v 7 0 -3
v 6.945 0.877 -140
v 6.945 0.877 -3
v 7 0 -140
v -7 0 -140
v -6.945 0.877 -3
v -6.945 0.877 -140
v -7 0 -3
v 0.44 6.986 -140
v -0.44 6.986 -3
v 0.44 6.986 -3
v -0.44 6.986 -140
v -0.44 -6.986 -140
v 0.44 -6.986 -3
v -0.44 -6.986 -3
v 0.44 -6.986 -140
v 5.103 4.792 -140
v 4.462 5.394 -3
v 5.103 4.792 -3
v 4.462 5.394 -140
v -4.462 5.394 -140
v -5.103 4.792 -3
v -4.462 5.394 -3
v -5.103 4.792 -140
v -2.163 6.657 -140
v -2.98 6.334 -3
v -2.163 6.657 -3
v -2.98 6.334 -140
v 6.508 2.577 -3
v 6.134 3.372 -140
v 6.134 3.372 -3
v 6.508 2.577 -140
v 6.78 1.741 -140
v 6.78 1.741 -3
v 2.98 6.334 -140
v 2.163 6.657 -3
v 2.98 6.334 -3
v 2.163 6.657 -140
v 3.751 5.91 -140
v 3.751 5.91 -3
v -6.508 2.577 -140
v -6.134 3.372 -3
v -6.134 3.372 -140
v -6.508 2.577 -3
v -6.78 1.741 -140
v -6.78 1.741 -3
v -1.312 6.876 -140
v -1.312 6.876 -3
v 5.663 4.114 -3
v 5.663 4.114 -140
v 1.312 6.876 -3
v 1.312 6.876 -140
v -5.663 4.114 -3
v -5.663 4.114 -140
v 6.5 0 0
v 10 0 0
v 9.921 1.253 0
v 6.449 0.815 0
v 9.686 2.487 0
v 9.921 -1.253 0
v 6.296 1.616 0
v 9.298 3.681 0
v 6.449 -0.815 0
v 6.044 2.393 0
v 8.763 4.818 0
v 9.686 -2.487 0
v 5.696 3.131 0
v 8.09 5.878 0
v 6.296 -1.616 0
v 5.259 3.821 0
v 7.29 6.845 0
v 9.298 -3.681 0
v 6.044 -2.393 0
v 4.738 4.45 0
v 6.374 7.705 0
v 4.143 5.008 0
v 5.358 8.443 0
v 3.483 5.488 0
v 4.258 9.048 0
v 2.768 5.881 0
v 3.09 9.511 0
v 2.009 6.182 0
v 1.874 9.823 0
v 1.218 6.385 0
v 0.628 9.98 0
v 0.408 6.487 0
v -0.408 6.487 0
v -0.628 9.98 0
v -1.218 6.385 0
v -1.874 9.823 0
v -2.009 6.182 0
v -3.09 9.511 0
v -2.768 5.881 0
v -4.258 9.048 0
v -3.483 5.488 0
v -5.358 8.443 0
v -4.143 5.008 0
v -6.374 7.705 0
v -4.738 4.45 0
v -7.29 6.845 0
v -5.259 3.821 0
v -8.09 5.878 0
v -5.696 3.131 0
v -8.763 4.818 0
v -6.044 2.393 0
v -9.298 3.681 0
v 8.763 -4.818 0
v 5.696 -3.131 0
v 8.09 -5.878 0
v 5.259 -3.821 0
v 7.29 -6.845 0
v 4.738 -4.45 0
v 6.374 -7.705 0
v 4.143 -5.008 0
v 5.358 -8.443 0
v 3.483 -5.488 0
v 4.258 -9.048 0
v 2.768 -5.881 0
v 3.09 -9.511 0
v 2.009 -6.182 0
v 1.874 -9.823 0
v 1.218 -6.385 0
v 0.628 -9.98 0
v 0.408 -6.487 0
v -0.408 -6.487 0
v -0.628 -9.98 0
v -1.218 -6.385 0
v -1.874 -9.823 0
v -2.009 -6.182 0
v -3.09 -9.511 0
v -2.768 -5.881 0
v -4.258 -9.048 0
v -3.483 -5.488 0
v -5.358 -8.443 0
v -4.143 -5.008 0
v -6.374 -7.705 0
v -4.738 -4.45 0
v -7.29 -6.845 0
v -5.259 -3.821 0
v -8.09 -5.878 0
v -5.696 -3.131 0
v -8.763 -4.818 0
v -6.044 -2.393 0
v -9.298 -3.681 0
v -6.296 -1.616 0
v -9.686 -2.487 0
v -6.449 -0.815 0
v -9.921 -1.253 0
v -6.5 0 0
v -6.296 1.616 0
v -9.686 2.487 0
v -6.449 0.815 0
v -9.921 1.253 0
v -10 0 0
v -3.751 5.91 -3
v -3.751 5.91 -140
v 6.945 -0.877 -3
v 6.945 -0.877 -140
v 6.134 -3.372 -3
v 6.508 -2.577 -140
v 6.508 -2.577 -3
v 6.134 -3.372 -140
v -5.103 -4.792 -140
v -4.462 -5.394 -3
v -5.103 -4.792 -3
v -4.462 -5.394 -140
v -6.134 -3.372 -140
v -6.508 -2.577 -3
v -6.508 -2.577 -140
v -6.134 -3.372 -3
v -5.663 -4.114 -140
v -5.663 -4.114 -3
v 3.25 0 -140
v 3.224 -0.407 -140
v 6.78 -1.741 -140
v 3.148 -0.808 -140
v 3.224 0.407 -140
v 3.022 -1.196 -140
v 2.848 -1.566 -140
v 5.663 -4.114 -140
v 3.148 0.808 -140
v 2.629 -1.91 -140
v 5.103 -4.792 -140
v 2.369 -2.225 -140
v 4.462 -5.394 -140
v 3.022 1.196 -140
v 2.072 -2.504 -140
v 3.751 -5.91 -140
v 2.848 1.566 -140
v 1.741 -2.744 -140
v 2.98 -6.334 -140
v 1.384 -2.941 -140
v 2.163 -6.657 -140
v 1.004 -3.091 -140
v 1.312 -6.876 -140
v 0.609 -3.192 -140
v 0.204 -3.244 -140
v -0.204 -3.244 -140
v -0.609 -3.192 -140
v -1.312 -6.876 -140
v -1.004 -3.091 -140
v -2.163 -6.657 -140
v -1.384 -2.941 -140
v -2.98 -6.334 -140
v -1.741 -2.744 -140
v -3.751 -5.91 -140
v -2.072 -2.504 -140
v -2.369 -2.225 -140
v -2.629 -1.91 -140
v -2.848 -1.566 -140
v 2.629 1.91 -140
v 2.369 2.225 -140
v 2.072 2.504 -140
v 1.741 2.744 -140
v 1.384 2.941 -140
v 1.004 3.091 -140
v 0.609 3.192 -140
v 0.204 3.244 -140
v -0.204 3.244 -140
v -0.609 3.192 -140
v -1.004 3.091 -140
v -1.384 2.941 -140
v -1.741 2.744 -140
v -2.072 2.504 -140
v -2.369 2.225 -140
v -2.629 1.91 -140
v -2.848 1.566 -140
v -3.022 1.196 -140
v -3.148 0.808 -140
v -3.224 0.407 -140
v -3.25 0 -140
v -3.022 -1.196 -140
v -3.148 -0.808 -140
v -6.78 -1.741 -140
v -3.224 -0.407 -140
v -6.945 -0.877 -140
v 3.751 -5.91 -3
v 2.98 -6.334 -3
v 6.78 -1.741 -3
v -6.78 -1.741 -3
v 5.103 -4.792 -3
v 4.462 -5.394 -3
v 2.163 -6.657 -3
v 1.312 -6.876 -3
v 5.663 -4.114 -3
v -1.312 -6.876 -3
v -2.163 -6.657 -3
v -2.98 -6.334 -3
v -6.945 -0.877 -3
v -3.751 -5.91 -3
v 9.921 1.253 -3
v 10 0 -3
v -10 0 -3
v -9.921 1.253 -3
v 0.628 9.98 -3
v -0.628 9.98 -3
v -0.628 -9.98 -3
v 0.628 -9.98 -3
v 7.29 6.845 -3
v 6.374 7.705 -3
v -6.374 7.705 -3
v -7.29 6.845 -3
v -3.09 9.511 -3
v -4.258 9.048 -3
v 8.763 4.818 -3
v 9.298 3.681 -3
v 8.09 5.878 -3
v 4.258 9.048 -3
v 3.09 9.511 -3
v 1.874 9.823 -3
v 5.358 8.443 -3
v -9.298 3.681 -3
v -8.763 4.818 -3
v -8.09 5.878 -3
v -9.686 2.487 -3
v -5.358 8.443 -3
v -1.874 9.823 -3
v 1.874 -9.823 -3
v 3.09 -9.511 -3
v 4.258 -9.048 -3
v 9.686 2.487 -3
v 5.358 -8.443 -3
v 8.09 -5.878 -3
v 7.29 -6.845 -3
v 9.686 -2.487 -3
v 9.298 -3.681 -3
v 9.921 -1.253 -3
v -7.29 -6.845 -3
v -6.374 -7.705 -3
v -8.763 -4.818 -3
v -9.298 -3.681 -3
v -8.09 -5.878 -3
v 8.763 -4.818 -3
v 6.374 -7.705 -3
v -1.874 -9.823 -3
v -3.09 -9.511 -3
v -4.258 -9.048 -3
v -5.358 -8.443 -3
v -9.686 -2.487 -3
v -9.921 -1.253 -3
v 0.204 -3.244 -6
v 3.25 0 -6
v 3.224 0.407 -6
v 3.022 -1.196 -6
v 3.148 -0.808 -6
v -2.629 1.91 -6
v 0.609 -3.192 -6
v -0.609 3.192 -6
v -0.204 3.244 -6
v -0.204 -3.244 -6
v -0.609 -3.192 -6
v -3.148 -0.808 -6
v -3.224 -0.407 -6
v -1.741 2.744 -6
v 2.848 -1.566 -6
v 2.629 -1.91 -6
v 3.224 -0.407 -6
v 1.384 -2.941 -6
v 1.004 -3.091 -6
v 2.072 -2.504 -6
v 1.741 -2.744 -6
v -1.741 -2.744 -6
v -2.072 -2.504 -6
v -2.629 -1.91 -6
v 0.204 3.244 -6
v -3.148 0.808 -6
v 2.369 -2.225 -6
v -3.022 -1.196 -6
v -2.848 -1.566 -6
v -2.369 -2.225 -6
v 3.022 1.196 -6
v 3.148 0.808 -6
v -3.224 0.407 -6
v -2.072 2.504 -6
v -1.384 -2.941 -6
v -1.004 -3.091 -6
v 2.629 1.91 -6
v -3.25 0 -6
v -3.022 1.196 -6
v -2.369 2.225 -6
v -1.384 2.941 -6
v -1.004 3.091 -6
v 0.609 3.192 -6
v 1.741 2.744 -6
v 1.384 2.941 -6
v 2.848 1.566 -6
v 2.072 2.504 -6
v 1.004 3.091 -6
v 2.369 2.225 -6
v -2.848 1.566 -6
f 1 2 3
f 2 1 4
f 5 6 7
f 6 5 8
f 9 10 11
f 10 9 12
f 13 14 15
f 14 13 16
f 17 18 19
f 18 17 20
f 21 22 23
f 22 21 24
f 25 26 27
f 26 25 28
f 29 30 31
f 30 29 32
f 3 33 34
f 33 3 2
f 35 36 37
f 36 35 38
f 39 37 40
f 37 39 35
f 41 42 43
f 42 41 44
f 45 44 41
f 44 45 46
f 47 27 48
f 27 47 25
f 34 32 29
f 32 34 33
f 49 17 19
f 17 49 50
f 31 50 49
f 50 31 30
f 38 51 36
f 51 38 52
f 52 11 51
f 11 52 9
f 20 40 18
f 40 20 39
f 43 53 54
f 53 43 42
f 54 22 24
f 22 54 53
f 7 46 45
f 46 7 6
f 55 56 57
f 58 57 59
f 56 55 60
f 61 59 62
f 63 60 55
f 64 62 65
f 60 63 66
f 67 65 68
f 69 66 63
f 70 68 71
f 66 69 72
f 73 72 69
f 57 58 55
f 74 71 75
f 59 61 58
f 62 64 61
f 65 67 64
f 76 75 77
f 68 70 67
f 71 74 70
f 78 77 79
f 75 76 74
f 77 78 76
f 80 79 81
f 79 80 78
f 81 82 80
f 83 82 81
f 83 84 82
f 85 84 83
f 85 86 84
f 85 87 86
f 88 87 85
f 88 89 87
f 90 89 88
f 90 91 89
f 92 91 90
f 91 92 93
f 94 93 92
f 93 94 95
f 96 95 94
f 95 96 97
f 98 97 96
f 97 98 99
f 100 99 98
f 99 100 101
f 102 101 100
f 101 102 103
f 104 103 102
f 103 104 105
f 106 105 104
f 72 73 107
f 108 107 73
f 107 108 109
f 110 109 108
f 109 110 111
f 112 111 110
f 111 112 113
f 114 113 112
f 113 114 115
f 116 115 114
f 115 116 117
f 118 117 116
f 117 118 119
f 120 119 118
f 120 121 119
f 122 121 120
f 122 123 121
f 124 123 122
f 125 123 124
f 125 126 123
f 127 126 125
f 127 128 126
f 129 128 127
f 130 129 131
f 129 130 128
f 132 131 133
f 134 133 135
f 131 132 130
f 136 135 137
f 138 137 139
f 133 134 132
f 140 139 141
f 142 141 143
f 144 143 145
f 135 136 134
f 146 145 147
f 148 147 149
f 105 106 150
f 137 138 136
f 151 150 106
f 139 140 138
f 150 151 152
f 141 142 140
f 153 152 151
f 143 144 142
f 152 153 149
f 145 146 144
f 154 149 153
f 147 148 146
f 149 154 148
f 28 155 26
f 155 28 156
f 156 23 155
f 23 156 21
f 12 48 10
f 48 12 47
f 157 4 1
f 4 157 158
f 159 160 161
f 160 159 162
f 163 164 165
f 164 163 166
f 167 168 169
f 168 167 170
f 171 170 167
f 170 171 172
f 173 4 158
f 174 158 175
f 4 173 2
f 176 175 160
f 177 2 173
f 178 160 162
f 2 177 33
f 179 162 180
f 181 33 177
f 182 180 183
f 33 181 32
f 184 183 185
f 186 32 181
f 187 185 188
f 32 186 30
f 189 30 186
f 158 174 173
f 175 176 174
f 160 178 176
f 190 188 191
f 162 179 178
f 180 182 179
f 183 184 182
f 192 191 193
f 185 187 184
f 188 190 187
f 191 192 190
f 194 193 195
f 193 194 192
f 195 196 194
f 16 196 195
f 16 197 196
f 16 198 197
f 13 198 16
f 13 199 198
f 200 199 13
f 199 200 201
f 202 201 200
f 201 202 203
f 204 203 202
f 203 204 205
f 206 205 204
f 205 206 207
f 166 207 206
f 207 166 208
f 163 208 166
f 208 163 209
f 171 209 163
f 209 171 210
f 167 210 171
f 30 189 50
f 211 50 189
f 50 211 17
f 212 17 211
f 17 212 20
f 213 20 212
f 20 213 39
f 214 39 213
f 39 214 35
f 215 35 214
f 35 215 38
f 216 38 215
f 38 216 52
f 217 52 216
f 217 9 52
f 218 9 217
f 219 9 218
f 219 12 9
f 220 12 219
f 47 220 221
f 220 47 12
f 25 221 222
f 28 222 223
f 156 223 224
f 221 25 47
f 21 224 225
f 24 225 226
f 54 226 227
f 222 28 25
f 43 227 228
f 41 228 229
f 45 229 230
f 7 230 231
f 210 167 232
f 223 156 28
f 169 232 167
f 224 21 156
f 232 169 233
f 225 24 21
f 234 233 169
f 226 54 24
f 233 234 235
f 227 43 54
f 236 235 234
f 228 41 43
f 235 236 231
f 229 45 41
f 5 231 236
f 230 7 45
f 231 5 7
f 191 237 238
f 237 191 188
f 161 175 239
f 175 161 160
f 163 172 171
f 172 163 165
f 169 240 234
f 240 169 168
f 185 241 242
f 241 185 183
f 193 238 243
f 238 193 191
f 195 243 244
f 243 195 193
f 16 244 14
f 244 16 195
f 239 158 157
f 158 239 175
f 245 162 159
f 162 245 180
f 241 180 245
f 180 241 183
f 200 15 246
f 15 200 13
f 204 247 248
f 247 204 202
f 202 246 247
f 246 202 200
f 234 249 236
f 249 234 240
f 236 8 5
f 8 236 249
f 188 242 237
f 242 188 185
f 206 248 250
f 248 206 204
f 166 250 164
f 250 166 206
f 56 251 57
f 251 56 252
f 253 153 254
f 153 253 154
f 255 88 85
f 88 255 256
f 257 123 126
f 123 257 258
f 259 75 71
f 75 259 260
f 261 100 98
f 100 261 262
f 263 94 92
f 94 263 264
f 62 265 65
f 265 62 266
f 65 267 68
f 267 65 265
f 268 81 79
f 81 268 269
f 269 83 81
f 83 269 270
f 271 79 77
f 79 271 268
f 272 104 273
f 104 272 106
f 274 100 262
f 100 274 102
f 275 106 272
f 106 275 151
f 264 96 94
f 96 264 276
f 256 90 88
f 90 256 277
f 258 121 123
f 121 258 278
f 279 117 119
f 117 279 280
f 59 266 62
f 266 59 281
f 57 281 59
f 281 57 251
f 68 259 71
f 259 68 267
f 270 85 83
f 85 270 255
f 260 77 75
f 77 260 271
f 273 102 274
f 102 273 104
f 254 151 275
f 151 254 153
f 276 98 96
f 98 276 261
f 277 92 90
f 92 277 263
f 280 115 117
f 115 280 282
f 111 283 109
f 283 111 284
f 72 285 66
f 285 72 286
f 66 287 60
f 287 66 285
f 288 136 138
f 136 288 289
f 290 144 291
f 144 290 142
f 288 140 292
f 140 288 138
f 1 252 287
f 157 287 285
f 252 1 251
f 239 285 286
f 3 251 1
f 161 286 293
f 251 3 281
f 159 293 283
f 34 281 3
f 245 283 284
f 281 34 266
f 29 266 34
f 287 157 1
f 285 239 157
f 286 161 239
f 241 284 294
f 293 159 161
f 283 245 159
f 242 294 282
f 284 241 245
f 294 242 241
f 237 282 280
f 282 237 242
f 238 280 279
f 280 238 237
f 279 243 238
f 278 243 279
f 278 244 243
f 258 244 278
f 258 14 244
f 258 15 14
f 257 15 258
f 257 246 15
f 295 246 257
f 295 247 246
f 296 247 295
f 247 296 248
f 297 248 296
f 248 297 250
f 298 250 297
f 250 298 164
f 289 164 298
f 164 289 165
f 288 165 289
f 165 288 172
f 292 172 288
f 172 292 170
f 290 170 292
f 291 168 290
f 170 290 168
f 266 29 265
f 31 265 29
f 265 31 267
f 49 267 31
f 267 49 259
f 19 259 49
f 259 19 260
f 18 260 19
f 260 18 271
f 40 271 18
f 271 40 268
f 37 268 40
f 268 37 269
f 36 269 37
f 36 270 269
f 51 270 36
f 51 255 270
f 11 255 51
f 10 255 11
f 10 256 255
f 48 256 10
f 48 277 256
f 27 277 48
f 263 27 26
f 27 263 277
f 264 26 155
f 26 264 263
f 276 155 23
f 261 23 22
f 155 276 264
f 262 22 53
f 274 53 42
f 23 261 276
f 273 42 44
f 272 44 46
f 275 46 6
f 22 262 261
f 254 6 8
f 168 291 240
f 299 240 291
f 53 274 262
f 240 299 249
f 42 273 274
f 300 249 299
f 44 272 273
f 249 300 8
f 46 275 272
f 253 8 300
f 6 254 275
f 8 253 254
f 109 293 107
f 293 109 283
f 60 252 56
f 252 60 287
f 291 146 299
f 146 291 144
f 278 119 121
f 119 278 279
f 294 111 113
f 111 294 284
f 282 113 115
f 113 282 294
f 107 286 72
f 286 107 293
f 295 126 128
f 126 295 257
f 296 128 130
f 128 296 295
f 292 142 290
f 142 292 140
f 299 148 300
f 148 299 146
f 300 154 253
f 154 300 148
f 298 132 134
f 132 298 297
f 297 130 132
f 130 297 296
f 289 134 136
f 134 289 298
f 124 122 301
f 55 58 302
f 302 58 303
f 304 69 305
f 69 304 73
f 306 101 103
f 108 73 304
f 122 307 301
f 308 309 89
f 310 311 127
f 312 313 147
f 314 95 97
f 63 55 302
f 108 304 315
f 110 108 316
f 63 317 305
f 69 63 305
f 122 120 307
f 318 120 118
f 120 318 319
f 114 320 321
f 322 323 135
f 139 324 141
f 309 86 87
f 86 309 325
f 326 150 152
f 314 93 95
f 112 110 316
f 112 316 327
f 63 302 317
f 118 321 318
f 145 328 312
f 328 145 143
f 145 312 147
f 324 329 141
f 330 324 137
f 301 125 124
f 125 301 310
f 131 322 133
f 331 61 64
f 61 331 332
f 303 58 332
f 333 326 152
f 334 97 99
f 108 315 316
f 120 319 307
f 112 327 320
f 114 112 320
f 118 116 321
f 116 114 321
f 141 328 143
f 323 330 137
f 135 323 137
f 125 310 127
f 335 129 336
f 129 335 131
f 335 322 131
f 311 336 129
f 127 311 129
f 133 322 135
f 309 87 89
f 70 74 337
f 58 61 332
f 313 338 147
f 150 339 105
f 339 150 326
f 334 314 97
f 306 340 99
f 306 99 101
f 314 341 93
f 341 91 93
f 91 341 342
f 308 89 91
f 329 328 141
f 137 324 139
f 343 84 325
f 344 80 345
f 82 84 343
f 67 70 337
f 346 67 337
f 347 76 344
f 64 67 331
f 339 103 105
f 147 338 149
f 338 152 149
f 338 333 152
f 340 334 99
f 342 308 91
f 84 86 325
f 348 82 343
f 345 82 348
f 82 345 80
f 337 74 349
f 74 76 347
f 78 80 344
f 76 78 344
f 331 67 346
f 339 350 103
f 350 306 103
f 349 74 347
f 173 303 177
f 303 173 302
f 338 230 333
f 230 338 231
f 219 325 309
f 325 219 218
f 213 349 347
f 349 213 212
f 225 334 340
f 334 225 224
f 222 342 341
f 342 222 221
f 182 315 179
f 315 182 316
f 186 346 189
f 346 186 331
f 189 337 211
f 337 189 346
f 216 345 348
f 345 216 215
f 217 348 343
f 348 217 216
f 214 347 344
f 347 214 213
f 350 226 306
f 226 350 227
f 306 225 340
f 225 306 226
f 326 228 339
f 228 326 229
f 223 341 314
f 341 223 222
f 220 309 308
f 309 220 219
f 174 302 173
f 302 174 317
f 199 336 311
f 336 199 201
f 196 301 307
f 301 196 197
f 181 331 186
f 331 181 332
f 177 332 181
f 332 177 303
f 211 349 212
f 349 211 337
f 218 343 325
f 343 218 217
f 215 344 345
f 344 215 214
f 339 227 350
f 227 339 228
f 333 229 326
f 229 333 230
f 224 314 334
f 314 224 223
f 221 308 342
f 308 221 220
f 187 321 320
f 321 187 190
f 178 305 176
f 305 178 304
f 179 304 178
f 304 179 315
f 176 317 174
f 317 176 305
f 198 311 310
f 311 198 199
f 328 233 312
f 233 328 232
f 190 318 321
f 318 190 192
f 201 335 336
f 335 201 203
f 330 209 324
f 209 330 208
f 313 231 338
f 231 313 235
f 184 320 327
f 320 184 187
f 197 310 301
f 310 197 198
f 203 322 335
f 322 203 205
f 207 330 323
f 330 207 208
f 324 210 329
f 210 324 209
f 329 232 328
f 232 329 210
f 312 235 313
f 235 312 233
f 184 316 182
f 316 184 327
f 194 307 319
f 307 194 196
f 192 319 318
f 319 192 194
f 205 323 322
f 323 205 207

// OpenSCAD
$fn = 50;


difference() {
	union() {
		translate(v = [0, 0, -140.0000000000]) {
			cylinder(h = 140, r = 7.0000000000);
		}
		translate(v = [0, 0, -3.0000000000]) {
			cylinder(h = 3, r = 10.0000000000);
		}
	}
	union() {
		translate(v = [0, 0, 0]) {
			rotate(a = [0, 0, 0]) {
				difference() {
					union() {
						#translate(v = [0, 0, -140.0000000000]) {
							cylinder(h = 140, r = 2.2500000000);
						}
						#translate(v = [0, 0, -6]) {
							cylinder(h = 6, r1 = 3.2500000000, r2 = 6.5000000000);
						}
						#translate(v = [0, 0, -140.0000000000]) {
							cylinder(h = 140, r = 3.2500000000);
						}
						#translate(v = [0, 0, -140.0000000000]) {
							cylinder(h = 140, r = 2.2500000000);
						}
					}
					union();
				}
			}
		}
	}
}
